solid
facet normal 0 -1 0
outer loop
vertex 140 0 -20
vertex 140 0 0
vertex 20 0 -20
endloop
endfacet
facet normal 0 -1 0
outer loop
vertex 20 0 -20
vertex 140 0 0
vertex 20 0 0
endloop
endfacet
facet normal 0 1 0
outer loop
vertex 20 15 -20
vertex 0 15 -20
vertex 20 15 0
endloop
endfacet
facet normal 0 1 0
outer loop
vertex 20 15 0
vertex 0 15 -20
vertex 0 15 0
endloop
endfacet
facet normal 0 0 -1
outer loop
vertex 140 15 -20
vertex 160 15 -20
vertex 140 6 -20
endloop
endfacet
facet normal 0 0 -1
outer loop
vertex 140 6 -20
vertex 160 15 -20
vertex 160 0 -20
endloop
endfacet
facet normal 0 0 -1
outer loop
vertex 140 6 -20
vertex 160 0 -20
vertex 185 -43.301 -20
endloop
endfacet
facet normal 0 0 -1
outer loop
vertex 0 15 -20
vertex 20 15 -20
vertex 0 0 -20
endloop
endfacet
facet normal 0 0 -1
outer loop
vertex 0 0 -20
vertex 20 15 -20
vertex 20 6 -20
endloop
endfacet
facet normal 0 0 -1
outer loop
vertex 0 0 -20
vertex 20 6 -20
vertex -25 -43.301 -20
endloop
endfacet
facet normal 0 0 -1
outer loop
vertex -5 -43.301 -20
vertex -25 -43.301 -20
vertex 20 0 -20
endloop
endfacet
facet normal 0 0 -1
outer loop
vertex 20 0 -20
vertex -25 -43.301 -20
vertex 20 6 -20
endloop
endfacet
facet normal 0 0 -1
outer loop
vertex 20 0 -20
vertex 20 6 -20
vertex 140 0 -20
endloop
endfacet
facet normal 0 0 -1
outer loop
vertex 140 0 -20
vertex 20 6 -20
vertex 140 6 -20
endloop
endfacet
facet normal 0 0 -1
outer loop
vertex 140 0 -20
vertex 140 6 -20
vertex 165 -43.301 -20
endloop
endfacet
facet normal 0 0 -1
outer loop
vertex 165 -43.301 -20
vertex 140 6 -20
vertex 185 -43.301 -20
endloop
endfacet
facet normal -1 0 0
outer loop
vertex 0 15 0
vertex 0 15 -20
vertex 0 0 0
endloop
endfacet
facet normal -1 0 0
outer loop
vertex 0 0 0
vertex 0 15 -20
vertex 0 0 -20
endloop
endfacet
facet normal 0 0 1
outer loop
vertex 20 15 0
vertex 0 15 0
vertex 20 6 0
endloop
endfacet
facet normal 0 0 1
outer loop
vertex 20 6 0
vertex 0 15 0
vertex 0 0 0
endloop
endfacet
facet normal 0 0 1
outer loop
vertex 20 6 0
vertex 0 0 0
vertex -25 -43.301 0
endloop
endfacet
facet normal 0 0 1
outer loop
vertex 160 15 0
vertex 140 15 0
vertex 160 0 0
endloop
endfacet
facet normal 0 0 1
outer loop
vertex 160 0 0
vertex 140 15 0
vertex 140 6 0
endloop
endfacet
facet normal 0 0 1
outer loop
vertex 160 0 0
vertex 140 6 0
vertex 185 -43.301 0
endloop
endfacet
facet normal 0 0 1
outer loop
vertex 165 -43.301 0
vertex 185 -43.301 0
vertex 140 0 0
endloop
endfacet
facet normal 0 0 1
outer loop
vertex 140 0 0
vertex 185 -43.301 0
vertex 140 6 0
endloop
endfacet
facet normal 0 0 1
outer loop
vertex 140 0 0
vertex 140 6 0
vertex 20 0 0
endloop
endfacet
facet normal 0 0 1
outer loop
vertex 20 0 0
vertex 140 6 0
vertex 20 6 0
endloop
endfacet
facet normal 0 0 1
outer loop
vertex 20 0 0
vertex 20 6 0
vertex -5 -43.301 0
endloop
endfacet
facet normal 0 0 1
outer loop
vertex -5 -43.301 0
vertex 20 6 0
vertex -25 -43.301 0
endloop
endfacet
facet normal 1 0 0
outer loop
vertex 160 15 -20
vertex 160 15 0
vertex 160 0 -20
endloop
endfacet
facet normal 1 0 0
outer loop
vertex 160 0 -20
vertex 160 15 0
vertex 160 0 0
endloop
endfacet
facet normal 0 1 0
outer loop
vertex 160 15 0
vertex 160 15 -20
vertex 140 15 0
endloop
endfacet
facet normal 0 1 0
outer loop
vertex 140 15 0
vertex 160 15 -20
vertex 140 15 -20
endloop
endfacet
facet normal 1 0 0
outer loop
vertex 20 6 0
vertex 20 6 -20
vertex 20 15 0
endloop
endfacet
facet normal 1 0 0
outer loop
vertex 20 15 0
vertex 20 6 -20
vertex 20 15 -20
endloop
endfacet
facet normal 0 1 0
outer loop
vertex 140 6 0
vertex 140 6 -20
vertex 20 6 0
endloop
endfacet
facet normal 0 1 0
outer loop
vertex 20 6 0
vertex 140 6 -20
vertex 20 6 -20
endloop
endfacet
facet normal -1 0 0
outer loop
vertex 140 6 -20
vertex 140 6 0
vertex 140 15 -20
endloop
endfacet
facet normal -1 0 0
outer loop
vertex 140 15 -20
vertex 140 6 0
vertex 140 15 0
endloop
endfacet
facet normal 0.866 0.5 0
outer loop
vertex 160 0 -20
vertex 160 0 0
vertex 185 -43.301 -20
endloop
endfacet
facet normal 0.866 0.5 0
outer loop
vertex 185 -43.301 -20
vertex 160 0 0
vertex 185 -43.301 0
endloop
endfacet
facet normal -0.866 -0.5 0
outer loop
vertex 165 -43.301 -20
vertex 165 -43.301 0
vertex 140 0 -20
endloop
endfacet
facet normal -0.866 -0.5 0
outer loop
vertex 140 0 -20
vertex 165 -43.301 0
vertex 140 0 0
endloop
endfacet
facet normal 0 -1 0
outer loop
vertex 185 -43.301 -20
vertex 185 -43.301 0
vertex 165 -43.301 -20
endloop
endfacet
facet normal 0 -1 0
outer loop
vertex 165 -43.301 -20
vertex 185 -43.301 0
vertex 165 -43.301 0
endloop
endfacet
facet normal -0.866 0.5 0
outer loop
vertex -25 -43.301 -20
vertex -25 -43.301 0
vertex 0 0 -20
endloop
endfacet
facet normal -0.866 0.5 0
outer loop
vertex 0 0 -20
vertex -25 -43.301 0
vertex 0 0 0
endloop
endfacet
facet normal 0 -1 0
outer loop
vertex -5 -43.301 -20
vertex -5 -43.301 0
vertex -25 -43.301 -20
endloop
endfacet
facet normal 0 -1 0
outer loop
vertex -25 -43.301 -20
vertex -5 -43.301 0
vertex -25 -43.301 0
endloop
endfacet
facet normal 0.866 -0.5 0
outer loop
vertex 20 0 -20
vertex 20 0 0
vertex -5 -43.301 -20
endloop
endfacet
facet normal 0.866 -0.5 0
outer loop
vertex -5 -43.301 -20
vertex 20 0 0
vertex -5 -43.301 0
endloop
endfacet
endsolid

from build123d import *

# Parameters (mm, degrees)
SKETCH_1_W          = 160
SKETCH_1_H          = 20
EXTRUDE_1_DEPTH     = 15
SKETCH_2_W          = 120
SKETCH_2_H          = 20
CUT_EXTRUDE_1_DEPTH = 9
EXTRUDE_2_DEPTH     = 20


with BuildPart() as part:
    # 草图1 → 凸台-拉伸1 (new body)
    with BuildSketch(Plane(origin=(0, 0, 0), x_dir=(1, 0, 0), z_dir=(0, 1, 0))):
        with Locations((80, 10)):
            Rectangle(SKETCH_1_W, SKETCH_1_H)
    extrude(amount=EXTRUDE_1_DEPTH)

    # 草图2 → 切除-拉伸1 (cut)
    with BuildSketch(Plane(origin=(0, 15, 0), x_dir=(1, 0, 0), z_dir=(0, 1, 0))):
        with Locations((80, 10)):
            Rectangle(SKETCH_2_W, SKETCH_2_H)
    extrude(amount=-CUT_EXTRUDE_1_DEPTH, mode=Mode.SUBTRACT)

    # 草图4 → 凸台-拉伸2 (add)
    with BuildSketch(Plane.XY):
        Polygon((0, 0), (-25, -43.301270189), (-5, -43.301270189), (20, 0), align=None)
        Polygon((165, -43.301270189), (140, 0), (160, 0), (185, -43.301270189), align=None)
    extrude(amount=-EXTRUDE_2_DEPTH)


solid = part.part
